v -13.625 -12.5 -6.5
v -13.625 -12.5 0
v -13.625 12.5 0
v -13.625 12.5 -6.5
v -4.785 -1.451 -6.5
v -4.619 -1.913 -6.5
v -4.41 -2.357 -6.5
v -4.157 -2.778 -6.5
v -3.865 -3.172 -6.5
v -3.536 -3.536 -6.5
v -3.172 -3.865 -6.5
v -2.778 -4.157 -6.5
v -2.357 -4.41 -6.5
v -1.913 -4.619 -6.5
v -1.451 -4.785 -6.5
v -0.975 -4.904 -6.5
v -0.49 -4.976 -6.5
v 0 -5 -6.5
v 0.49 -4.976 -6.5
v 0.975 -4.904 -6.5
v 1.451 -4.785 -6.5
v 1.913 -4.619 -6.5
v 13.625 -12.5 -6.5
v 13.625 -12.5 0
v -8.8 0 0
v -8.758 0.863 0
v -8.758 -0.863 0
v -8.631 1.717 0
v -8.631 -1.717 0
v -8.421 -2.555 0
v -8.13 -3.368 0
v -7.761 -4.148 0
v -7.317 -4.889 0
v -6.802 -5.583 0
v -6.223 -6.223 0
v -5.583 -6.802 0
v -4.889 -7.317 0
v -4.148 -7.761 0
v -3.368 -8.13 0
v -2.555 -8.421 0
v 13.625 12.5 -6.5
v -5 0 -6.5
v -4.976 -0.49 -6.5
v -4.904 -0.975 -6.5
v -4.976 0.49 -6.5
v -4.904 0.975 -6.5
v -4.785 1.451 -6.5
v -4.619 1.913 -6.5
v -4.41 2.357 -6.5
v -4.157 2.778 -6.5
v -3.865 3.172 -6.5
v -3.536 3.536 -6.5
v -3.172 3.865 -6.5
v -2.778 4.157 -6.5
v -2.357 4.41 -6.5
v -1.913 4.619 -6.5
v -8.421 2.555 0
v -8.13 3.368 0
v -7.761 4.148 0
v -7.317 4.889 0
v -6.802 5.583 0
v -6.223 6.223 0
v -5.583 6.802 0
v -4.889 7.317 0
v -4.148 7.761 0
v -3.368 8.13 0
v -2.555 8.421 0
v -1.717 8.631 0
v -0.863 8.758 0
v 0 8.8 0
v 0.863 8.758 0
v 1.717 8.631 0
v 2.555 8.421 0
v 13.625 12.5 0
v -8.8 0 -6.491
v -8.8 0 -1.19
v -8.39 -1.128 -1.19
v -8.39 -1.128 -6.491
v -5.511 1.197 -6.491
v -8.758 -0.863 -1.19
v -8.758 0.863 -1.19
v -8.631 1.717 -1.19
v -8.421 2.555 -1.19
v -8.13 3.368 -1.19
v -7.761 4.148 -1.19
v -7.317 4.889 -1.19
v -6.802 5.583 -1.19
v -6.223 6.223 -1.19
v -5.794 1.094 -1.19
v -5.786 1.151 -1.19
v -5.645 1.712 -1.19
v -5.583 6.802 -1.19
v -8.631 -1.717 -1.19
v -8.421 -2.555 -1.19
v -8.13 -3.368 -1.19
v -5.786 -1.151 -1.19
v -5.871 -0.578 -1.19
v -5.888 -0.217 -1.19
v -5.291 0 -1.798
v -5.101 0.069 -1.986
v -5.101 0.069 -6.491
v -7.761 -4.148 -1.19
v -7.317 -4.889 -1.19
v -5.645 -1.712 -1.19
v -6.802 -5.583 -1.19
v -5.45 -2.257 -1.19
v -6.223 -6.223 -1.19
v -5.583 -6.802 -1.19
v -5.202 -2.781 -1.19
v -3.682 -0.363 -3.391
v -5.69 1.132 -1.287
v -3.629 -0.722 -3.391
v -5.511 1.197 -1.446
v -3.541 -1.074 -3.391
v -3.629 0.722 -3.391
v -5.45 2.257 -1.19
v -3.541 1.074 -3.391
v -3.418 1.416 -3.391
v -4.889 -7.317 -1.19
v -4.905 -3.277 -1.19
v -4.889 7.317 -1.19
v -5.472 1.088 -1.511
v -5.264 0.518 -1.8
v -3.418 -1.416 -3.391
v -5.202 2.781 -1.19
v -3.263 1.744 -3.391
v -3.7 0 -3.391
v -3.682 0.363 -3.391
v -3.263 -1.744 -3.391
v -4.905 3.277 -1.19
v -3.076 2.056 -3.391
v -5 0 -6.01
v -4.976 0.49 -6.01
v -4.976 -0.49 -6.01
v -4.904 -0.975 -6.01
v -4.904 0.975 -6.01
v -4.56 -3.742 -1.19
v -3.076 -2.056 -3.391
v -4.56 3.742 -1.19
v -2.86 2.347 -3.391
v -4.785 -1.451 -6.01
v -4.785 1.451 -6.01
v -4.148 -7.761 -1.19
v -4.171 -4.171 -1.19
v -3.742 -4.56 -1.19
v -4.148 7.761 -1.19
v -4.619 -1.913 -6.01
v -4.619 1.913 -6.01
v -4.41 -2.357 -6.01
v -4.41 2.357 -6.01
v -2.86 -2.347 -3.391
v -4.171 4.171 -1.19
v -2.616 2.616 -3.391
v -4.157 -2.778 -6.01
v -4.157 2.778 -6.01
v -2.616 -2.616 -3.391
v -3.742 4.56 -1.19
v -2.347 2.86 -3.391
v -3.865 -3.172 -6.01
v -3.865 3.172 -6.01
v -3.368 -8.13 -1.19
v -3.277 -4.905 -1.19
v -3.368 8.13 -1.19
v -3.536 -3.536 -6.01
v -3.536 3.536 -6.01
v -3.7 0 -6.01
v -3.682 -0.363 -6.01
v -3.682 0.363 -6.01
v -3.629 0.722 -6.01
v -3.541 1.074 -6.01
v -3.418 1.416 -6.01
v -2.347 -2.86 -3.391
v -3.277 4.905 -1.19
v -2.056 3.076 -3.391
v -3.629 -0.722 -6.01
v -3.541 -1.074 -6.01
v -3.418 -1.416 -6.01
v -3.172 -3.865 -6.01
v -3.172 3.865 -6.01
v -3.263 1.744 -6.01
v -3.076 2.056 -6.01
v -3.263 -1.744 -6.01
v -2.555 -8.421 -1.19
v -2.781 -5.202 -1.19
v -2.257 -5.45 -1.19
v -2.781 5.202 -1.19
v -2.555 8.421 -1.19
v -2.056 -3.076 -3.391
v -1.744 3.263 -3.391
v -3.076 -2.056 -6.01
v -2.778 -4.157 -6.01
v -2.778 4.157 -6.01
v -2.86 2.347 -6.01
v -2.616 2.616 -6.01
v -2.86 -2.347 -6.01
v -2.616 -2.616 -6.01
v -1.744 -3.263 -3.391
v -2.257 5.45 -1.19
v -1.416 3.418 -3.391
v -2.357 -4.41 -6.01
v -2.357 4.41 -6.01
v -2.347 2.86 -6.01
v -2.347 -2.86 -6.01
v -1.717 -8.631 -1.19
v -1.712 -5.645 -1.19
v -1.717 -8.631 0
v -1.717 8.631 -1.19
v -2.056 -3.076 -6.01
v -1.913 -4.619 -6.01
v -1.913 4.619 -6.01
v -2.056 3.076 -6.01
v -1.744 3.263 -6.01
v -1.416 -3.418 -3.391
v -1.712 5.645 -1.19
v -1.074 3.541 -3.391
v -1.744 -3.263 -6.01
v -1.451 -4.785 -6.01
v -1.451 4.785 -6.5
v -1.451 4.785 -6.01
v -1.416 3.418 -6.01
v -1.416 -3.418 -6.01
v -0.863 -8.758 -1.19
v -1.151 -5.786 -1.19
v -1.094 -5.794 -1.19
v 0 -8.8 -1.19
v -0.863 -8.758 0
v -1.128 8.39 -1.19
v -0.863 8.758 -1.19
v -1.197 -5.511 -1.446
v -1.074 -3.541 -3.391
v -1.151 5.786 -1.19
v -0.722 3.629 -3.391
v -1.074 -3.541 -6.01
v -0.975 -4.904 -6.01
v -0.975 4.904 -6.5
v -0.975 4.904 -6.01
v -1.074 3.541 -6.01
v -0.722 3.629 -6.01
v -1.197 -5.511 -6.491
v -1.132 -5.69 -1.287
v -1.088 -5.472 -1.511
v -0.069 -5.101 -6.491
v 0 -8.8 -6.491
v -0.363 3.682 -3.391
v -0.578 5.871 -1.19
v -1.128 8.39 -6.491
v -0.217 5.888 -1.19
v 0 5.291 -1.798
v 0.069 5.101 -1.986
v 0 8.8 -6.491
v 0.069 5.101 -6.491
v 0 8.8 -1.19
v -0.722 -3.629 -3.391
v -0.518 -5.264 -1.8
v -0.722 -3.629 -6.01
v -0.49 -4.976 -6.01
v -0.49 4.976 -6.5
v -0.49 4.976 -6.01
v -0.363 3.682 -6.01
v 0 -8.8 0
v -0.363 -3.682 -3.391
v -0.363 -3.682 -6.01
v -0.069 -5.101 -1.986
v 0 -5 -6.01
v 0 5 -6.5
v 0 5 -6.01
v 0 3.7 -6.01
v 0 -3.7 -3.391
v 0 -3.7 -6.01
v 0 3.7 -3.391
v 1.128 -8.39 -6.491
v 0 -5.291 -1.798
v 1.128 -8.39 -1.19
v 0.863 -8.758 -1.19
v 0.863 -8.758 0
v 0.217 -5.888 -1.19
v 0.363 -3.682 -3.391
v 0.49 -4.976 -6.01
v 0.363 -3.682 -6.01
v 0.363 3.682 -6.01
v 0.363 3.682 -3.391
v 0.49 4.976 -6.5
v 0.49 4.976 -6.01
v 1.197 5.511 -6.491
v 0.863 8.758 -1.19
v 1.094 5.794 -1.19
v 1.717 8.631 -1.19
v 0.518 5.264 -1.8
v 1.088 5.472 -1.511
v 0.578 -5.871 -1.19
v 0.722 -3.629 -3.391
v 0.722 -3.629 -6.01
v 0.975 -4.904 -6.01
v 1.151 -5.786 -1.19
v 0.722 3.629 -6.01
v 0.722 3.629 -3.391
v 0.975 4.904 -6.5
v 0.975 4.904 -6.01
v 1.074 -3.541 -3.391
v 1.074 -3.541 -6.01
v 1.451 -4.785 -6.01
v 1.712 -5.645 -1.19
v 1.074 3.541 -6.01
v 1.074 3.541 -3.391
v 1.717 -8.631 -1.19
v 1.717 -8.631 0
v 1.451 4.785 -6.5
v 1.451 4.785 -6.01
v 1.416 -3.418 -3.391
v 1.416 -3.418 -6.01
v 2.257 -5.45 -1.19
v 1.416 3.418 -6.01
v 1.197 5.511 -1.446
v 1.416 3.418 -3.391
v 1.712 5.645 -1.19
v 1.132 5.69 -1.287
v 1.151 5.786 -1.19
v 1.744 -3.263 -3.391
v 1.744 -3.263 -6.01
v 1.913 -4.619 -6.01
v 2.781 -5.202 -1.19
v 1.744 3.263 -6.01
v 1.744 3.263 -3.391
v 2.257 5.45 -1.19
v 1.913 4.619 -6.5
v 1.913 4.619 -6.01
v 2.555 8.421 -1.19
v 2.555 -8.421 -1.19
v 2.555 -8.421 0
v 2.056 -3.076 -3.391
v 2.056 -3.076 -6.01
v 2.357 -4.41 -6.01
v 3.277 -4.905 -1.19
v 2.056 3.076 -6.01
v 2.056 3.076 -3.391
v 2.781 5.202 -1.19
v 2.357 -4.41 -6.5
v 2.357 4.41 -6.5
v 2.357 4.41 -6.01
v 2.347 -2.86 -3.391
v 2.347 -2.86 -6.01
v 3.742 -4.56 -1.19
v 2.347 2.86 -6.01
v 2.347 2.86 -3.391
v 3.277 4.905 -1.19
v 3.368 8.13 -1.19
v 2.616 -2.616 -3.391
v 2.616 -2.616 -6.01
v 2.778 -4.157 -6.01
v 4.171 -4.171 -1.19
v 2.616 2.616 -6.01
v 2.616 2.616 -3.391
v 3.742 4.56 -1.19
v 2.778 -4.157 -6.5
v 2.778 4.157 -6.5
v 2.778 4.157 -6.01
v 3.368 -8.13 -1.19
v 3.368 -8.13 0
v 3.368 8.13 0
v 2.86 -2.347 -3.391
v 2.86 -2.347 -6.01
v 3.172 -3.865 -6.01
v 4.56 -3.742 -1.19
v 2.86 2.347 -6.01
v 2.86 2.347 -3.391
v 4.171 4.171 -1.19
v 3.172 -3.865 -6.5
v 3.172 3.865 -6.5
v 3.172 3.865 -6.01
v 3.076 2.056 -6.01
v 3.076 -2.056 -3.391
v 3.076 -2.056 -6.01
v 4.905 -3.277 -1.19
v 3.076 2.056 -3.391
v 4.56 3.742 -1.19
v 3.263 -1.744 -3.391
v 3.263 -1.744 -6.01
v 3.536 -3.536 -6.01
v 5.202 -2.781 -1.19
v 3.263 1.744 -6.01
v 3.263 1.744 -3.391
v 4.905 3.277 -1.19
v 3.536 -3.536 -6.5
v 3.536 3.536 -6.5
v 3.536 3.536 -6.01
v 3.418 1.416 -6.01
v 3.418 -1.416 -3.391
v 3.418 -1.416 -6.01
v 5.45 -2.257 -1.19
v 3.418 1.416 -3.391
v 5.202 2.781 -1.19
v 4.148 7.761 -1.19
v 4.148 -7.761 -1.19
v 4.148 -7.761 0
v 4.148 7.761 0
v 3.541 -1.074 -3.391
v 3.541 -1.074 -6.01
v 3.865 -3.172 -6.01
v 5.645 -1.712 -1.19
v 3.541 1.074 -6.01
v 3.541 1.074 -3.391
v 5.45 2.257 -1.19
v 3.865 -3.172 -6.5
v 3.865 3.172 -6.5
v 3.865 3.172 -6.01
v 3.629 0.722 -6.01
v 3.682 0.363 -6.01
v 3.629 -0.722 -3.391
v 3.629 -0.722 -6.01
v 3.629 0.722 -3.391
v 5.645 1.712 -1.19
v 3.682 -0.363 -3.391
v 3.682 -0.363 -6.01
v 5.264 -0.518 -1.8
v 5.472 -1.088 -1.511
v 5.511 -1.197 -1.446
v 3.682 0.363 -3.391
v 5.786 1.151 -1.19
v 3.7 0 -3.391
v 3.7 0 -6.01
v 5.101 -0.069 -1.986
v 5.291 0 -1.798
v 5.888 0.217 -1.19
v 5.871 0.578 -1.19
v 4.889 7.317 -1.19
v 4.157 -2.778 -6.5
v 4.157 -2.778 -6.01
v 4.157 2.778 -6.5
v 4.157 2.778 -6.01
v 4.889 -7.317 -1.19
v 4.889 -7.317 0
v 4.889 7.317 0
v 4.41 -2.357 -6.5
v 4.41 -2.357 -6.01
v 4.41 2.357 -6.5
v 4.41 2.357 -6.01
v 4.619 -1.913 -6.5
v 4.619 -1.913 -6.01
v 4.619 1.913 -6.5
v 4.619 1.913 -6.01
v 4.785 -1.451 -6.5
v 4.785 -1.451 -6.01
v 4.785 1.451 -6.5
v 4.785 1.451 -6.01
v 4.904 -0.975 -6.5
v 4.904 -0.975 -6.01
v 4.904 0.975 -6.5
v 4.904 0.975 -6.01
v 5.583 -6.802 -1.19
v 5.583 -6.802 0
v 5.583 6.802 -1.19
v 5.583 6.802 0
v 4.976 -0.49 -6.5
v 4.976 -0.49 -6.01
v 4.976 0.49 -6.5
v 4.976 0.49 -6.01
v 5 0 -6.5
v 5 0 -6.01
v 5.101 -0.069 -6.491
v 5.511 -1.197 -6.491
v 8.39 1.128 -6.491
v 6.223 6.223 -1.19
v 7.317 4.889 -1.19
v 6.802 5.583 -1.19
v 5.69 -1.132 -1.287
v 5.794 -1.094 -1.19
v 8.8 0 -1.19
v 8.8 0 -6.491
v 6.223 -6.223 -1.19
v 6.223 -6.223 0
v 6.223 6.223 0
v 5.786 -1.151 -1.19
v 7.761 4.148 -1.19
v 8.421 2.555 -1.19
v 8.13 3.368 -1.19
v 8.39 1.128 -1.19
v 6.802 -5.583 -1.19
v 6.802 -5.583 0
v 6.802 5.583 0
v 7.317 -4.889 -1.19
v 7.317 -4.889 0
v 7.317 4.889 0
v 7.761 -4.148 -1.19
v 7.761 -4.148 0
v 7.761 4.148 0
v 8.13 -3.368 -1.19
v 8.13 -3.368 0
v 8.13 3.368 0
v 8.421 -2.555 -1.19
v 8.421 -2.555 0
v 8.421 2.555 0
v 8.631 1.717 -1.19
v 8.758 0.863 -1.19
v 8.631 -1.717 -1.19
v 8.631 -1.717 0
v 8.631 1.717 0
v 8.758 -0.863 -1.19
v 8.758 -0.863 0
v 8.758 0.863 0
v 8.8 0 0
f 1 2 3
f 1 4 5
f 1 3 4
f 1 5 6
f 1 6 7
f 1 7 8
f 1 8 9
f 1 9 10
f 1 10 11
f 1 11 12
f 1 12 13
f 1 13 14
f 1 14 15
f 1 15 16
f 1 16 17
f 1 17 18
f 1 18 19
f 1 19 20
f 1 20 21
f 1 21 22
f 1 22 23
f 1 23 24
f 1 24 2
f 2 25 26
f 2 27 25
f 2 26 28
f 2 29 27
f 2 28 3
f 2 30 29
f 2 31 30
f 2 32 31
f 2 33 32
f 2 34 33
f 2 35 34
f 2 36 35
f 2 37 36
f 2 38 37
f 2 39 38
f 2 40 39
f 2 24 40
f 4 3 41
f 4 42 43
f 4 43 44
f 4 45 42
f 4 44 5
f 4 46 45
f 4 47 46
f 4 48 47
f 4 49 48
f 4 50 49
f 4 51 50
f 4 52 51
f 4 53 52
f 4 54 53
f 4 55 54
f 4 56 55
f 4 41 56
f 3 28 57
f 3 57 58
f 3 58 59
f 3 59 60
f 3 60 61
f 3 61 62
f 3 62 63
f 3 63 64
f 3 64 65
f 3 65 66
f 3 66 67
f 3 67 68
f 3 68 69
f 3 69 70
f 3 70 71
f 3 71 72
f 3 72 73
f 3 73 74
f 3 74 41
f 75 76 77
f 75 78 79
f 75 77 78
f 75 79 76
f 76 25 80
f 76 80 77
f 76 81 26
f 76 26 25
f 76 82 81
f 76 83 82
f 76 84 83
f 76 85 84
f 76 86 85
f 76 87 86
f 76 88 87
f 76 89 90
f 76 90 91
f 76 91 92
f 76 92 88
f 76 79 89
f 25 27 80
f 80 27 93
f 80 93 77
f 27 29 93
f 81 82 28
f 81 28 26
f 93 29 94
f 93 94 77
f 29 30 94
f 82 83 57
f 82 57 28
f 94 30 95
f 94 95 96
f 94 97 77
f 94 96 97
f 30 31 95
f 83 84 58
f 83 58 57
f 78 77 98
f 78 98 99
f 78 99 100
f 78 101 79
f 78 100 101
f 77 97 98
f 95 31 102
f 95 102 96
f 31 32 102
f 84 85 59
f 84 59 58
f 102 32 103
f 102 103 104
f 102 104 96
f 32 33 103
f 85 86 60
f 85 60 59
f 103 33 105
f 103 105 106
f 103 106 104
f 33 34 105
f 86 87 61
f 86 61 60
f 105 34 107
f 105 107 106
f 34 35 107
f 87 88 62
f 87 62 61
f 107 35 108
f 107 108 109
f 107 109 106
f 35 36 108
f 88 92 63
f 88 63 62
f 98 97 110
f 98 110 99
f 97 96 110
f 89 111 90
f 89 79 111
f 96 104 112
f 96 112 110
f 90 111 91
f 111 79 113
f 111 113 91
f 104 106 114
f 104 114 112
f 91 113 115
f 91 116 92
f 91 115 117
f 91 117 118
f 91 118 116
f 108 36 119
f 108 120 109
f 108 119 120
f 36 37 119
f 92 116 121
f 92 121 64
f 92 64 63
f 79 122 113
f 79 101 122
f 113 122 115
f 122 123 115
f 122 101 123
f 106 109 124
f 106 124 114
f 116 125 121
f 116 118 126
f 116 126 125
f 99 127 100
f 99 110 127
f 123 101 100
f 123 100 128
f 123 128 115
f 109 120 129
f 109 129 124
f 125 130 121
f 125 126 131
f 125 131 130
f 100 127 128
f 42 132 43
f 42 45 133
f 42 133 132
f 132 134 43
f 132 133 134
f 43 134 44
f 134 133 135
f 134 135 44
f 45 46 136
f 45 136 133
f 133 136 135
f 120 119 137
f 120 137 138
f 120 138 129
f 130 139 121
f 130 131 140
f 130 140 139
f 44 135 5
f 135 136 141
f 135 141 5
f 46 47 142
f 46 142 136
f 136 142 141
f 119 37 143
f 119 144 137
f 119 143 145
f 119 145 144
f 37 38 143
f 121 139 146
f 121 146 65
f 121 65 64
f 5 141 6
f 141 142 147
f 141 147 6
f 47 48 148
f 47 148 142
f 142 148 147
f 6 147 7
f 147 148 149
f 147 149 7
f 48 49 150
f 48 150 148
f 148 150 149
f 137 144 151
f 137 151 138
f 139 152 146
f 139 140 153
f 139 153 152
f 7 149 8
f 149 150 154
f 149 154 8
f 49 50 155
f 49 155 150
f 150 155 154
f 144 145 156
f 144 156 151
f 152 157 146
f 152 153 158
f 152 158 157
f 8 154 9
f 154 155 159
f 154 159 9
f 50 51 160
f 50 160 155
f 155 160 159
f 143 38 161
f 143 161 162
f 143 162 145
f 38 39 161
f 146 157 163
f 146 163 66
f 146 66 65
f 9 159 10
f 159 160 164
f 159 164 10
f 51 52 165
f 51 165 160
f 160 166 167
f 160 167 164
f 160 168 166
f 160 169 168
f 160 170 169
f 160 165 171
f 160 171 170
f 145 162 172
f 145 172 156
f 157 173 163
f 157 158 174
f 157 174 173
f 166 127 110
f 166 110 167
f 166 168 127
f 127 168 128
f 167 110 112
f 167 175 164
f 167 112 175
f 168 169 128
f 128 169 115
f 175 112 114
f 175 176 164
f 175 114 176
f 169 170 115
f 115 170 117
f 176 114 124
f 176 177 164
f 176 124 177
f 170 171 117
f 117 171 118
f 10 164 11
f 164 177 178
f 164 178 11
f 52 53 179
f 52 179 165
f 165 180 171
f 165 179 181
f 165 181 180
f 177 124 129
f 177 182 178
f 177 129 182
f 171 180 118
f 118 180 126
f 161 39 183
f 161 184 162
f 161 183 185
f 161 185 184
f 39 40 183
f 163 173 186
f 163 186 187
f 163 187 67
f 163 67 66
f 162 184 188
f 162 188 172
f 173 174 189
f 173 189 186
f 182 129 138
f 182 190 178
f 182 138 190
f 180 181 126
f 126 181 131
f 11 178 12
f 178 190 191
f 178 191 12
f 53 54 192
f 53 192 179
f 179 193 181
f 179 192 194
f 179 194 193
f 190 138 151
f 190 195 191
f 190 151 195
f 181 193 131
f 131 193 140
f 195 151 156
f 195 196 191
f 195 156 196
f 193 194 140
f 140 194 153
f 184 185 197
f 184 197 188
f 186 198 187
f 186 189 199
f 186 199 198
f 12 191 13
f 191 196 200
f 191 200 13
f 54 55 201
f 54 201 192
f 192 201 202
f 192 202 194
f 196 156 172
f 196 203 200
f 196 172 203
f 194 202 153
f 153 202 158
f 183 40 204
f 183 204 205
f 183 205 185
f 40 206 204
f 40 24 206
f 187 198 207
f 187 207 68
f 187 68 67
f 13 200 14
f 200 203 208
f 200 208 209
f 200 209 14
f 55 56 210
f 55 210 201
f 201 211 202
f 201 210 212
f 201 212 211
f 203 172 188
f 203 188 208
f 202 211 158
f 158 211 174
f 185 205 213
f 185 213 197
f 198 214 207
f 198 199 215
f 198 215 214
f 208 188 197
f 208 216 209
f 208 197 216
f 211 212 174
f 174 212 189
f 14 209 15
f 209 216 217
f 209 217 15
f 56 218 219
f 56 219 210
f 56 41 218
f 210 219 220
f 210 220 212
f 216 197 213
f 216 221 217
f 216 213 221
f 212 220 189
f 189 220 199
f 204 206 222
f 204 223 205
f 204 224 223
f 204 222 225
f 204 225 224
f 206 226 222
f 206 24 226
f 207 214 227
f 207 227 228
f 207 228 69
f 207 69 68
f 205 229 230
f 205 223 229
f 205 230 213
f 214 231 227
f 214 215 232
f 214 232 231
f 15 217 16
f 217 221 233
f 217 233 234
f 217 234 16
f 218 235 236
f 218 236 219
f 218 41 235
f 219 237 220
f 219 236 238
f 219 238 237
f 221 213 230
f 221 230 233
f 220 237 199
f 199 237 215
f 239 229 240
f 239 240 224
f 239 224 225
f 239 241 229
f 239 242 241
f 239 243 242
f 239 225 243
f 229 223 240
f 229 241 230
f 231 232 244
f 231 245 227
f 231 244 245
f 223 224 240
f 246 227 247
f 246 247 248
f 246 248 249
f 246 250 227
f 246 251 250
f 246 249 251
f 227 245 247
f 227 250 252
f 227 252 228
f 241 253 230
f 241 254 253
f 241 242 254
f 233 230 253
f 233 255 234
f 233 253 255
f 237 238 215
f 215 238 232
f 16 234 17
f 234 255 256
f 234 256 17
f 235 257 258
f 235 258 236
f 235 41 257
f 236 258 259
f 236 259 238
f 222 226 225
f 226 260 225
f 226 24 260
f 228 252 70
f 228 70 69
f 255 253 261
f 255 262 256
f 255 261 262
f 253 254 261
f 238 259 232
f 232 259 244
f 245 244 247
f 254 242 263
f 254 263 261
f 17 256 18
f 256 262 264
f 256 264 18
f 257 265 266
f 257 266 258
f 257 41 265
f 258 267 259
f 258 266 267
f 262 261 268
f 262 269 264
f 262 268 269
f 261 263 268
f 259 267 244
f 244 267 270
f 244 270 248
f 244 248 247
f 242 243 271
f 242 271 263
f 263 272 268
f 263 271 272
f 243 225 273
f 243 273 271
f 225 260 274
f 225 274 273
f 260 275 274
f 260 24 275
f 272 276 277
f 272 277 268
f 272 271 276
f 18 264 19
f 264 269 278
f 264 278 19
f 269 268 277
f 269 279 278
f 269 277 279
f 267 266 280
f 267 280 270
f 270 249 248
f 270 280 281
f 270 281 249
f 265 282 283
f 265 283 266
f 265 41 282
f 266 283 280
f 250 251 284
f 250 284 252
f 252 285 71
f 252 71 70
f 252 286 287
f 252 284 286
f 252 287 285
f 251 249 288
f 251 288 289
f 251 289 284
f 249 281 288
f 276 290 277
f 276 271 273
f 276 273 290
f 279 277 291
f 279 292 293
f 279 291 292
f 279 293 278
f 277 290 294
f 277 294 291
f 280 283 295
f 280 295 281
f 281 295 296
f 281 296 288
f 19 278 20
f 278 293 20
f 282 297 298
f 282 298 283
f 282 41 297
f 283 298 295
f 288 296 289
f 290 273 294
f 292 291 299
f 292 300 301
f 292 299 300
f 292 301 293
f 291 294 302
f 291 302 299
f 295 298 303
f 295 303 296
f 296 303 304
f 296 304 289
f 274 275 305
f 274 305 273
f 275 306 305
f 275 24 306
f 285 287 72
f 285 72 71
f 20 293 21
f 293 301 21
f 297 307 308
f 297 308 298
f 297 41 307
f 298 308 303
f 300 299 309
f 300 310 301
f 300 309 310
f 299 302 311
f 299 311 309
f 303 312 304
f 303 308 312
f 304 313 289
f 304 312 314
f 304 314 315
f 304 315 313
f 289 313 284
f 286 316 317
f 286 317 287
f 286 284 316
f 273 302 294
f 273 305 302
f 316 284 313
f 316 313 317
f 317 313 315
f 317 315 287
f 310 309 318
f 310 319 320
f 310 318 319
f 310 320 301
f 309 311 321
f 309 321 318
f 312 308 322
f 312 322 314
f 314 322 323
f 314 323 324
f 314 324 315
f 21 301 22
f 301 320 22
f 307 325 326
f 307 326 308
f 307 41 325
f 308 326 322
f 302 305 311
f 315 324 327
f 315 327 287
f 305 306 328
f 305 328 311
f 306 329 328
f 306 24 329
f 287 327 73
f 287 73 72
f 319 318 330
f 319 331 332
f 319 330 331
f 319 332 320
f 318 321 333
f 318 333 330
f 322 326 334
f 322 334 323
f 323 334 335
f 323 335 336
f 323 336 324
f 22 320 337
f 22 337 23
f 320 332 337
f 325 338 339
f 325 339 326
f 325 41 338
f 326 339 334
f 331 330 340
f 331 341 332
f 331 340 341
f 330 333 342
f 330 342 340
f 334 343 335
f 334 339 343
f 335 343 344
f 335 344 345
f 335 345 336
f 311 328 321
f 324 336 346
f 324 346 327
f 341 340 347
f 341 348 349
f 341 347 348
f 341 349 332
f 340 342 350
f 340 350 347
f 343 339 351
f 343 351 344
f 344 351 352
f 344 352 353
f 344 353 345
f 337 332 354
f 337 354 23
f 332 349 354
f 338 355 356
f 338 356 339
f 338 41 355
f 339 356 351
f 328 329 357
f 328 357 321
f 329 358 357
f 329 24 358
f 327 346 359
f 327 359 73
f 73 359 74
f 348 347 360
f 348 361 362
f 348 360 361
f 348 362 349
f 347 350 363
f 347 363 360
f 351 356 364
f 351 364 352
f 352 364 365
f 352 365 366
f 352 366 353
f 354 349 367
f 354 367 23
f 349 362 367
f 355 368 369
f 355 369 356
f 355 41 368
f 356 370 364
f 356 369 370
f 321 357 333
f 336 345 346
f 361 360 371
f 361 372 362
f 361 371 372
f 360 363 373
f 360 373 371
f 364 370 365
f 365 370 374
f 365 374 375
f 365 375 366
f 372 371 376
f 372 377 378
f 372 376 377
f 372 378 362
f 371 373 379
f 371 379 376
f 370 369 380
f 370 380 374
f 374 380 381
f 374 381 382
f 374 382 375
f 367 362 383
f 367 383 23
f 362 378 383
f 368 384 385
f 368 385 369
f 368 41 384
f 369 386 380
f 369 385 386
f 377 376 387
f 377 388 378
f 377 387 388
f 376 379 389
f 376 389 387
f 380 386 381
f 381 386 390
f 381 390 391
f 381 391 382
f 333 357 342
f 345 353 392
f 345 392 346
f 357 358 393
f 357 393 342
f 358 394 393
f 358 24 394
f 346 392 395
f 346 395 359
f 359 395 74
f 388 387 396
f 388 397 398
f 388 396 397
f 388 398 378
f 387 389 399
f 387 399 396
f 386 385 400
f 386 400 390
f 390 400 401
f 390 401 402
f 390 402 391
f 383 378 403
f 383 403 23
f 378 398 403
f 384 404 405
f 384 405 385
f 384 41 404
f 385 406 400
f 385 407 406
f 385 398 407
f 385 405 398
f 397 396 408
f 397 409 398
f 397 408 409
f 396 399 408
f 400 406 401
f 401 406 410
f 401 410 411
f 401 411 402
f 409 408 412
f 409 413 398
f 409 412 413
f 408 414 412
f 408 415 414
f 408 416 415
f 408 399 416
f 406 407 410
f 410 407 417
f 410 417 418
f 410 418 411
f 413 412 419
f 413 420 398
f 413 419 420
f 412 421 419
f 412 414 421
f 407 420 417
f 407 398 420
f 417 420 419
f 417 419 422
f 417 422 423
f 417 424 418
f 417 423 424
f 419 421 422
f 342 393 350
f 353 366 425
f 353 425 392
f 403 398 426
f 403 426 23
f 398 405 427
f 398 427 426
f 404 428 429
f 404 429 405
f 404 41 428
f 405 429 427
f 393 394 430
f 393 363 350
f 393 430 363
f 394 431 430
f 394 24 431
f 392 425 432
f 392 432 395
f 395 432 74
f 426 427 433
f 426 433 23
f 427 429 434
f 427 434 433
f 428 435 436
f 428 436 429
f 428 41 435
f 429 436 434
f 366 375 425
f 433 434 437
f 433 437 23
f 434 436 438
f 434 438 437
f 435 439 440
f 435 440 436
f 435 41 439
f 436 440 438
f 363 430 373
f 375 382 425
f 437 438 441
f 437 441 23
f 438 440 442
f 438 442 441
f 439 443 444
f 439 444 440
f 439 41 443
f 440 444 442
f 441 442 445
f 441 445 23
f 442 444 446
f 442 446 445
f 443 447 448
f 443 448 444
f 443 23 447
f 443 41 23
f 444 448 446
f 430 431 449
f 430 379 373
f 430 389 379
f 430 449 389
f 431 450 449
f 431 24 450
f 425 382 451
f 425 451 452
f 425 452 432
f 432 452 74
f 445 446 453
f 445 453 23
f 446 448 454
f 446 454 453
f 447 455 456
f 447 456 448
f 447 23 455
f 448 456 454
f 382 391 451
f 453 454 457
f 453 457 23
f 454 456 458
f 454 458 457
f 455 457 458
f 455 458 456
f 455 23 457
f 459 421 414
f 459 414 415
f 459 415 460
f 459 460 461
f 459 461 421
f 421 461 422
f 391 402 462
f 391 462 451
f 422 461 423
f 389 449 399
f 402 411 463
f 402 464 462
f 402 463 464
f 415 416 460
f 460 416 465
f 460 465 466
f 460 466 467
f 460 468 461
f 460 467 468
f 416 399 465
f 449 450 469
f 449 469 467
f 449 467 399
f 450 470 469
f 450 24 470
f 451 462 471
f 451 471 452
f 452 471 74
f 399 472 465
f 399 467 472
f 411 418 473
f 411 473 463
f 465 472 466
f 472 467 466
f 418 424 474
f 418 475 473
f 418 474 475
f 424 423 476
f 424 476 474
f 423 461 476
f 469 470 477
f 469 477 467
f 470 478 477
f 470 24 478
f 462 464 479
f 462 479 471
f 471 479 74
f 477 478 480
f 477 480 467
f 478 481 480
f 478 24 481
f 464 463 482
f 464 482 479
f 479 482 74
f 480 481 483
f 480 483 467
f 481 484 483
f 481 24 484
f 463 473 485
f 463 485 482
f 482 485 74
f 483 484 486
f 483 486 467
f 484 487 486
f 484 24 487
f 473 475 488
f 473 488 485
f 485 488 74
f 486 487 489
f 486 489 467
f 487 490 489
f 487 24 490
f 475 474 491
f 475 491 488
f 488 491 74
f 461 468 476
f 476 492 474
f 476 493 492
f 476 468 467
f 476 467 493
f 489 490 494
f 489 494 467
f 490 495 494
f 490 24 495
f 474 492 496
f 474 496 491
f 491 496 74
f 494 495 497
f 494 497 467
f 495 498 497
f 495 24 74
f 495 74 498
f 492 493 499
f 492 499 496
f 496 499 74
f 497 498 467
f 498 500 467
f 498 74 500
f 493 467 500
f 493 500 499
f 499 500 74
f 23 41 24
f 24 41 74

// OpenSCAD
// Start: lazy_union
default_5_default_5();
// End: lazy_union

// Modules.

// 'PartMaterial undef-default - default 5.0'
module default_5_default_5() {
  // 'None : _combine_solids_and_holes'
  union() {
    // '_combine_solids_and_holes'
    difference() {
      // 'default : _combine_solids_and_holes'
      union() {
        // 'base'
        multmatrix(m=[[1.0, 0.0, 0.0, -13.625], [-0.0, -1.0, -0.0, 12.5], [-0.0, -0.0, -1.0, -0.0], [0.0, 0.0, 0.0, 1.0]]) {
          // 'base : _combine_solids_and_holes'
          union() {
            // 'base'
            cube(size=[27.25, 25.0, 6.5]);
          }
        }
      }
      // 'default'
      multmatrix(m=[[1.0, 0.0, 0.0, 0.0], [0.0, 1.0, 0.0, 0.0], [0.0, 0.0, 1.0, 0.01], [0.0, 0.0, 0.0, 1.0]]) {
        // 'tnut_outline : _combine_solids_and_holes'
        union() {
          // 'flat'
          multmatrix(m=[[1.0, 0.0, 0.0, 0.0], [0.0, -1.0, 0.0, 0.0], [0.0, 0.0, -1.0, 0.0], [0.0, 0.0, 0.0, 1.0]]) {
            // 'flat : _combine_solids_and_holes'
            union() {
              // 'flat'
              cylinder(h=1.2, r1=8.8, r2=8.8, center=false, $fn=64);
            }
          }
          // 'bevel'
          multmatrix(m=[[1.0, 0.0, 0.0, 0.0], [0.0, -1.0, 0.0, 0.0], [0.0, 0.0, -1.0, -1.199], [0.0, 0.0, 0.0, 1.0]]) {
            // 'bevel : _combine_solids_and_holes'
            union() {
              // 'bevel'
              cylinder(h=2.202, r1=5.9, r2=3.7, center=false, $fn=64);
            }
          }
          // 'shaft'
          multmatrix(m=[[1.0, 0.0, 0.0, 0.0], [0.0, -1.0, 0.0, 0.0], [0.0, 0.0, -1.0, -3.4000000000000004], [0.0, 0.0, 0.0, 1.0]]) {
            // 'shaft : _combine_solids_and_holes'
            union() {
              // 'shaft'
              cylinder(h=5.1, r1=3.7, r2=3.7, center=false, $fn=64);
            }
          }
          // 'shaft_extension'
          multmatrix(m=[[1.0, 0.0, 0.0, 0.0], [0.0, -1.0, 0.0, 0.0], [0.0, 0.0, -1.0, -8.498999999999999], [0.0, 0.0, 0.0, 1.0]]) {
            // 'shaft_extension'
            color(c=[1.0, 0.0, 0.0, 1.0]) {
              // 'shaft_extension : _combine_solids_and_holes'
              union() {
                // 'shaft_extension'
                cylinder(h=10.0, r1=3.7, r2=3.7, center=false, $fn=64);
              }
            }
          }
          // ('wing', 0)
          multmatrix(m=[[-0.9396926207859084, -0.3420201433256689, 0.0, 8.8], [-0.3420201433256689, 0.9396926207859084, 0.0, 0.0], [0.0, 0.0, -1.0, -0.001], [0.0, 0.0, 0.0, 1.0]]) {
            // ('wing', 0)
            color(c=[1.0, 0.0, 1.0, 1.0]) {
              // "('wing', 0) : _combine_solids_and_holes"
              union() {
                // ('wing', 0)
                cube(size=[3.5, 1.2, 6.5]);
              }
            }
          }
          // ('wing', 1)
          multmatrix(m=[[-0.3420201433256689, 0.9396926207859084, 0.0, 0.0], [0.9396926207859084, 0.3420201433256689, 0.0, -8.8], [0.0, 0.0, -1.0, -0.001], [0.0, 0.0, 0.0, 1.0]]) {
            // ('wing', 1)
            color(c=[1.0, 0.0, 1.0, 1.0]) {
              // "('wing', 1) : _combine_solids_and_holes"
              union() {
                // ('wing', 1)
                cube(size=[3.5, 1.2, 6.5]);
              }
            }
          }
          // ('wing', 2)
          multmatrix(m=[[0.9396926207859084, 0.3420201433256689, 0.0, -8.8], [0.3420201433256689, -0.9396926207859084, 0.0, 0.0], [0.0, 0.0, -1.0, -0.001], [0.0, 0.0, 0.0, 1.0]]) {
            // ('wing', 2)
            color(c=[1.0, 0.0, 1.0, 1.0]) {
              // "('wing', 2) : _combine_solids_and_holes"
              union() {
                // ('wing', 2)
                cube(size=[3.5, 1.2, 6.5]);
              }
            }
          }
          // ('wing', 3)
          multmatrix(m=[[0.3420201433256689, -0.9396926207859084, 0.0, 0.0], [-0.9396926207859084, -0.3420201433256689, 0.0, 8.8], [0.0, 0.0, -1.0, -0.001], [0.0, 0.0, 0.0, 1.0]]) {
            // ('wing', 3)
            color(c=[1.0, 0.0, 1.0, 1.0]) {
              // "('wing', 3) : _combine_solids_and_holes"
              union() {
                // ('wing', 3)
                cube(size=[3.5, 1.2, 6.5]);
              }
            }
          }
        }
      }
      // 'default'
      multmatrix(m=[[1.0, 0.0, 0.0, 0.0], [0.0, 1.0, 0.0, 0.0], [0.0, 0.0, 1.0, -6.51], [0.0, 0.0, 0.0, 1.0]]) {
        // 'overlap : _combine_solids_and_holes'
        union() {
          // 'overlap'
          cylinder(h=0.5, r1=5.0, r2=5.0, center=false, $fn=64);
        }
      }
    }
  }
} // end module default_5_default_5
